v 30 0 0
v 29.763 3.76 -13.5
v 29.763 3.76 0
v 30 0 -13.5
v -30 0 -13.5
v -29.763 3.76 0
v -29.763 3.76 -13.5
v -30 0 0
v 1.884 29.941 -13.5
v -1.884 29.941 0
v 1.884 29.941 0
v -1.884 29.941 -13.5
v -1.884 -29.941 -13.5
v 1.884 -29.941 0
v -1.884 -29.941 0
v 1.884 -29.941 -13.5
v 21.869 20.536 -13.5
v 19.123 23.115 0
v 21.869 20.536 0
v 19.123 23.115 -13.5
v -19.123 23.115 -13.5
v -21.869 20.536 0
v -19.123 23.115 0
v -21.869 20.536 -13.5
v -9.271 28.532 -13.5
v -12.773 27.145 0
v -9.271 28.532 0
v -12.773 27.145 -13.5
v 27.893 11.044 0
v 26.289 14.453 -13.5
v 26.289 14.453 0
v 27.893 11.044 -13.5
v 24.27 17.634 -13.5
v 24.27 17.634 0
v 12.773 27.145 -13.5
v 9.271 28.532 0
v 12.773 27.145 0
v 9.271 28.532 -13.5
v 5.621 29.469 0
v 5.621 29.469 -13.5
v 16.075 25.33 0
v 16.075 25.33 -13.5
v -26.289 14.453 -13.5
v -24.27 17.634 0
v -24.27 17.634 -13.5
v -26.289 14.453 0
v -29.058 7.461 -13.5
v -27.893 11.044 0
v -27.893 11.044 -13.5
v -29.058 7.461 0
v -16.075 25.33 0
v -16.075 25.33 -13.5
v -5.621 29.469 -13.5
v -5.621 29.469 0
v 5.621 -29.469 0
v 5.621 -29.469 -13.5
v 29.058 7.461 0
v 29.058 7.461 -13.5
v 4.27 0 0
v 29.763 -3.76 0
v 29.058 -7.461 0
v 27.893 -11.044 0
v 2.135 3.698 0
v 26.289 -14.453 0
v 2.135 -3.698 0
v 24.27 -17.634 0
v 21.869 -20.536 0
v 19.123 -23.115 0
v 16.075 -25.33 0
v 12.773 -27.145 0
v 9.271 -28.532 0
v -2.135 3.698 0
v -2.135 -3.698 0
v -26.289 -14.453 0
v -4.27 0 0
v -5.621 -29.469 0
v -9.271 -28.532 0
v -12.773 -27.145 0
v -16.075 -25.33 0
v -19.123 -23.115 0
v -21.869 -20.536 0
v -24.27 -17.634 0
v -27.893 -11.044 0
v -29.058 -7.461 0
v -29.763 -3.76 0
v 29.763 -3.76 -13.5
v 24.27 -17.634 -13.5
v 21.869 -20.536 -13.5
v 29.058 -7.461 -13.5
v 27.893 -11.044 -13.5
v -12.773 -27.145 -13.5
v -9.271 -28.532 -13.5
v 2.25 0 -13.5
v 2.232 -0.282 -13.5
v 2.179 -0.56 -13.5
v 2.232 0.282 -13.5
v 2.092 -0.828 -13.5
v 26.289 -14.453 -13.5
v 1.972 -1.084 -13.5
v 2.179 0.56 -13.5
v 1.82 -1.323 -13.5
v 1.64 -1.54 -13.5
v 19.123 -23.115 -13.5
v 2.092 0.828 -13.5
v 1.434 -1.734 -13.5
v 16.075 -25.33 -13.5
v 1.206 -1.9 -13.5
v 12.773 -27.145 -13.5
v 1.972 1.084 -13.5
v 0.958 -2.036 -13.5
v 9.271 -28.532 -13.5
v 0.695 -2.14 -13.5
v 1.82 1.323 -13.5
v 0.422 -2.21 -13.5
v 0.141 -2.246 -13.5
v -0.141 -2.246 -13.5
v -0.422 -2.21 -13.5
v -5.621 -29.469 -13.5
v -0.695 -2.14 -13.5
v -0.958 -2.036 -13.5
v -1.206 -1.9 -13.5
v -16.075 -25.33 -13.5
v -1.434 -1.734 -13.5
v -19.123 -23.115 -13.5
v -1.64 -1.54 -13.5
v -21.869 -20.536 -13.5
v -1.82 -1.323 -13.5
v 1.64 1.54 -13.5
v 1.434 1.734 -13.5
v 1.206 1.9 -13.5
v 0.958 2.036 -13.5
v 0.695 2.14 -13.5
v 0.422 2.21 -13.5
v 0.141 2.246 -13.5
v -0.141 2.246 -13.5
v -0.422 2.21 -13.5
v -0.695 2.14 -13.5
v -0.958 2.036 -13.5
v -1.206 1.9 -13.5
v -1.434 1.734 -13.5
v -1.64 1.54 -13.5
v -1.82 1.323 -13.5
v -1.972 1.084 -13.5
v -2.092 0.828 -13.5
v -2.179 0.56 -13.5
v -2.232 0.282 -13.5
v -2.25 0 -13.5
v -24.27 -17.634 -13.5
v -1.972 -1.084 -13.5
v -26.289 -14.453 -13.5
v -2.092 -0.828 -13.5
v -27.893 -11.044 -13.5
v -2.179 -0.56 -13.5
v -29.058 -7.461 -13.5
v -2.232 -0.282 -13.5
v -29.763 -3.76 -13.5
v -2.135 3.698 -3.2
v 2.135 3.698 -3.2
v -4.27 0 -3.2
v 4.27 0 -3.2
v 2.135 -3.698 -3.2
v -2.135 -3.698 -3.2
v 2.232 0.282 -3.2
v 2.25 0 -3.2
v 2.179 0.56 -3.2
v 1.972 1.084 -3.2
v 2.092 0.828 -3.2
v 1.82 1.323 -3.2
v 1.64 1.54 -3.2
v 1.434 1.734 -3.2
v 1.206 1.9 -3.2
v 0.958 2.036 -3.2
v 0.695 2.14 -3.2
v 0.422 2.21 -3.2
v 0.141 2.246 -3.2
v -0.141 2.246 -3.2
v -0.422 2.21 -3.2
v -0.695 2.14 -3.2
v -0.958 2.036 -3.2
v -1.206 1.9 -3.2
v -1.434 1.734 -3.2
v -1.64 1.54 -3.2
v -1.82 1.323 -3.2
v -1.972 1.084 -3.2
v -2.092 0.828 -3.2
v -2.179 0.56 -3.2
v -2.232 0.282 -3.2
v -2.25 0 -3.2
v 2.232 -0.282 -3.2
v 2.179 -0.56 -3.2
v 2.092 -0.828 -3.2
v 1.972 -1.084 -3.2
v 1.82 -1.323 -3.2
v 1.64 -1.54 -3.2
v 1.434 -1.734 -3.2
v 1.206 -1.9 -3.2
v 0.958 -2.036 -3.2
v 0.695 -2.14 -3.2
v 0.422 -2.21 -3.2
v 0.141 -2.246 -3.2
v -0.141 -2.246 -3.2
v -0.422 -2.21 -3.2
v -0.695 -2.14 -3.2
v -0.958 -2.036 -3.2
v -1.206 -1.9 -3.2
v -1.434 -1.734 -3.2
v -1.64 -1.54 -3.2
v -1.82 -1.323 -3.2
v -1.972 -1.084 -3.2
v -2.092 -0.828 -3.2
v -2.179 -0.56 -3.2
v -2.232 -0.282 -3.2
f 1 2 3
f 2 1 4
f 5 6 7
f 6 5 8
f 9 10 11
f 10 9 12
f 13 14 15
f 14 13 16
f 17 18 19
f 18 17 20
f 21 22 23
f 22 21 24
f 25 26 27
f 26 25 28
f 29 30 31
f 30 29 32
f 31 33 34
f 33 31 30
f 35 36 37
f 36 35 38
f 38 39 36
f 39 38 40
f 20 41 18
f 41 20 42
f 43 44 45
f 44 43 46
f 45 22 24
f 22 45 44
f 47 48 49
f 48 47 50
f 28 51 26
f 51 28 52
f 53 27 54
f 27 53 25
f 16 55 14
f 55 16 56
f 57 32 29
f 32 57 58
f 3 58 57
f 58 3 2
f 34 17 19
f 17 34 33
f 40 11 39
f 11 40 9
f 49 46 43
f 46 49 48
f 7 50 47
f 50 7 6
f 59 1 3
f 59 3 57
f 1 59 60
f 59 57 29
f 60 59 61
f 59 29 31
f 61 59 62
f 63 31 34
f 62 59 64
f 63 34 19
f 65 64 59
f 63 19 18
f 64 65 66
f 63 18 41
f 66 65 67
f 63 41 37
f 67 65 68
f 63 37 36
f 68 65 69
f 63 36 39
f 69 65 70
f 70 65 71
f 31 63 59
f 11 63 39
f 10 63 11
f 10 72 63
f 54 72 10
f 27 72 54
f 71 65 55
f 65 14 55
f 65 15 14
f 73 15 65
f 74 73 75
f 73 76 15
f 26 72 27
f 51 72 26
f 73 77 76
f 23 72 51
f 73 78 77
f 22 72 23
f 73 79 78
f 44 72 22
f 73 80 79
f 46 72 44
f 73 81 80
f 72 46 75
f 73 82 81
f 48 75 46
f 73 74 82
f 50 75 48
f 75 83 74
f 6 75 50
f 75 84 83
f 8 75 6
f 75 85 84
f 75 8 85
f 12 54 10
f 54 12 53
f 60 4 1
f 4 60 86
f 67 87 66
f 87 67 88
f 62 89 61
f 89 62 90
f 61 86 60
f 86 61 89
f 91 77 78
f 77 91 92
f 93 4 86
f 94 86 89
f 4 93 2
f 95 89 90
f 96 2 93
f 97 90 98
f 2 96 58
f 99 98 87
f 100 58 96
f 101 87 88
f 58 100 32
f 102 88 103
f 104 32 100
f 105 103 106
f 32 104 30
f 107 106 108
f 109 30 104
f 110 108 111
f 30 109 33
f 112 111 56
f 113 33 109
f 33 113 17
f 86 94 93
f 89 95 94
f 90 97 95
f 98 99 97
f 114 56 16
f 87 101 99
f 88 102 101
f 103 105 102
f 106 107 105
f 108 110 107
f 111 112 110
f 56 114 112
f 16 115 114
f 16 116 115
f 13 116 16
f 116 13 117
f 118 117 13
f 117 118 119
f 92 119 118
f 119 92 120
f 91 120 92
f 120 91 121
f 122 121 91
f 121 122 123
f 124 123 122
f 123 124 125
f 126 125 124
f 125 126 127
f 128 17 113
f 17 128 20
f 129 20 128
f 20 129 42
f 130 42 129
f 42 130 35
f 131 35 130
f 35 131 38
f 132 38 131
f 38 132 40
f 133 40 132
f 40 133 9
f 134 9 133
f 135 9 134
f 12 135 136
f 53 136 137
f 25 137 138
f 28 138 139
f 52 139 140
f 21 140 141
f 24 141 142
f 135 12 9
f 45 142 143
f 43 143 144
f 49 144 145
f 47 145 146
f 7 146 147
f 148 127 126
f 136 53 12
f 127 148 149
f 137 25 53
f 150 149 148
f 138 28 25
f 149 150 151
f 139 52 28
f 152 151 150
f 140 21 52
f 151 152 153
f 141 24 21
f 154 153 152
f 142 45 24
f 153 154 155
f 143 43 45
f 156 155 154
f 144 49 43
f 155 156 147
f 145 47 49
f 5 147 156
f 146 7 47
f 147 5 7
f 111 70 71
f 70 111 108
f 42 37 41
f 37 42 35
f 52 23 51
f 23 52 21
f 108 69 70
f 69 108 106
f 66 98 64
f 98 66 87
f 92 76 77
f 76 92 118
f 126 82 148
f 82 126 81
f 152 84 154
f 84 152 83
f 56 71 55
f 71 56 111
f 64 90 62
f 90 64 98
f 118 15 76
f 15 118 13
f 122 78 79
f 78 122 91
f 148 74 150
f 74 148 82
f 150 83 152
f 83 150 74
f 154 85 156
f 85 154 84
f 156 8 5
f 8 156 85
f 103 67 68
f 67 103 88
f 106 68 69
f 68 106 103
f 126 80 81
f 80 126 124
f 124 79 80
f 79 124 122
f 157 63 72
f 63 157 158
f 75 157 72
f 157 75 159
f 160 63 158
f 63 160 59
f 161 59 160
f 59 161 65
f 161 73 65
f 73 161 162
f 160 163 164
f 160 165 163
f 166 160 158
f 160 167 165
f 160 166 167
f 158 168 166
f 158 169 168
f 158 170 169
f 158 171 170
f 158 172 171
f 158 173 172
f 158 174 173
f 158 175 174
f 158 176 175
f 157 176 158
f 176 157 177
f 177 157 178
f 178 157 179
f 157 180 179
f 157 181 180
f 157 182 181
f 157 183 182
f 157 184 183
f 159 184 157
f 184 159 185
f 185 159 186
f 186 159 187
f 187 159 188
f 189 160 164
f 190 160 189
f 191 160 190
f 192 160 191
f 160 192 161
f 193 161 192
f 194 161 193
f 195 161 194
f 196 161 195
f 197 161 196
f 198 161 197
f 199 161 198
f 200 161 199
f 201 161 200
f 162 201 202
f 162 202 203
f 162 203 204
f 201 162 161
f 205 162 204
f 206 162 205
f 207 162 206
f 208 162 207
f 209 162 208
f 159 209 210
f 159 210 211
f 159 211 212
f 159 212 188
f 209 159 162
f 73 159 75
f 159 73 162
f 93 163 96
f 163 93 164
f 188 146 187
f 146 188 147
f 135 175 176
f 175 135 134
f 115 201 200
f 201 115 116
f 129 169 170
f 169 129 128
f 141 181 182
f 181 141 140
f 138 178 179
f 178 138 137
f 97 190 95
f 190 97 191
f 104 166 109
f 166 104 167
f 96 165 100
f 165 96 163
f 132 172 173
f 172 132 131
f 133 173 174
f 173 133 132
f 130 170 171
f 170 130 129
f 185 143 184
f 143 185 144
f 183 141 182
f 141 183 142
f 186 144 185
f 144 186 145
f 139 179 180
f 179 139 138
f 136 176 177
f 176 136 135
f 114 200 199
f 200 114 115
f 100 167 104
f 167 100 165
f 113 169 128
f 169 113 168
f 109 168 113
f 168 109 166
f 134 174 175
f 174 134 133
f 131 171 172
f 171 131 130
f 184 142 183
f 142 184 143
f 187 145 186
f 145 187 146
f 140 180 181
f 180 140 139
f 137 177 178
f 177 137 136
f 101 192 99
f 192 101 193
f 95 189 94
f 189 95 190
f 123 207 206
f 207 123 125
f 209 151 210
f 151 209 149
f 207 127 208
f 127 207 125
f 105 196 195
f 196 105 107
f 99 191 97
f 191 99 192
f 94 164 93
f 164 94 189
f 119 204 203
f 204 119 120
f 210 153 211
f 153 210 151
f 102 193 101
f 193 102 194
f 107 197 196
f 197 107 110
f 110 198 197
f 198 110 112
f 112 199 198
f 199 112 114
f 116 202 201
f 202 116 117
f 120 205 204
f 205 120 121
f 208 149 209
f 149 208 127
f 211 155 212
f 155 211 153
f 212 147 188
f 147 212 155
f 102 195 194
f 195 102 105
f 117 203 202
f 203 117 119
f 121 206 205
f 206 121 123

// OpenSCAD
$fn = 50;


difference() {
	union() {
		translate(v = [0, 0, -13.5000000000]) {
			cylinder(h = 13.5000000000, r = 30.0000000000);
		}
		translate(v = [0, 0, -12.0000000000]) {
			cylinder(h = 12, r = 2.8750000000);
		}
	}
	union() {
		translate(v = [0, 0, 0]) {
			rotate(a = [0, 0, 0]) {
				difference() {
					union() {
						translate(v = [0, 0, -3.2000000000]) {
							linear_extrude(height = 3.2000000000) {
								polygon(points = [[4.2698000000, 0.0000000000], [2.1349000000, 3.6977552691], [-2.1349000000, 3.6977552691], [-4.2698000000, 0.0000000000], [-2.1349000000, -3.6977552691], [2.1349000000, -3.6977552691]]);
							}
						}
					}
					union();
				}
			}
		}
		#translate(v = [0, 0, -100.0000000000]) {
			cylinder(h = 200, r = 2.2500000000);
		}
	}
}
